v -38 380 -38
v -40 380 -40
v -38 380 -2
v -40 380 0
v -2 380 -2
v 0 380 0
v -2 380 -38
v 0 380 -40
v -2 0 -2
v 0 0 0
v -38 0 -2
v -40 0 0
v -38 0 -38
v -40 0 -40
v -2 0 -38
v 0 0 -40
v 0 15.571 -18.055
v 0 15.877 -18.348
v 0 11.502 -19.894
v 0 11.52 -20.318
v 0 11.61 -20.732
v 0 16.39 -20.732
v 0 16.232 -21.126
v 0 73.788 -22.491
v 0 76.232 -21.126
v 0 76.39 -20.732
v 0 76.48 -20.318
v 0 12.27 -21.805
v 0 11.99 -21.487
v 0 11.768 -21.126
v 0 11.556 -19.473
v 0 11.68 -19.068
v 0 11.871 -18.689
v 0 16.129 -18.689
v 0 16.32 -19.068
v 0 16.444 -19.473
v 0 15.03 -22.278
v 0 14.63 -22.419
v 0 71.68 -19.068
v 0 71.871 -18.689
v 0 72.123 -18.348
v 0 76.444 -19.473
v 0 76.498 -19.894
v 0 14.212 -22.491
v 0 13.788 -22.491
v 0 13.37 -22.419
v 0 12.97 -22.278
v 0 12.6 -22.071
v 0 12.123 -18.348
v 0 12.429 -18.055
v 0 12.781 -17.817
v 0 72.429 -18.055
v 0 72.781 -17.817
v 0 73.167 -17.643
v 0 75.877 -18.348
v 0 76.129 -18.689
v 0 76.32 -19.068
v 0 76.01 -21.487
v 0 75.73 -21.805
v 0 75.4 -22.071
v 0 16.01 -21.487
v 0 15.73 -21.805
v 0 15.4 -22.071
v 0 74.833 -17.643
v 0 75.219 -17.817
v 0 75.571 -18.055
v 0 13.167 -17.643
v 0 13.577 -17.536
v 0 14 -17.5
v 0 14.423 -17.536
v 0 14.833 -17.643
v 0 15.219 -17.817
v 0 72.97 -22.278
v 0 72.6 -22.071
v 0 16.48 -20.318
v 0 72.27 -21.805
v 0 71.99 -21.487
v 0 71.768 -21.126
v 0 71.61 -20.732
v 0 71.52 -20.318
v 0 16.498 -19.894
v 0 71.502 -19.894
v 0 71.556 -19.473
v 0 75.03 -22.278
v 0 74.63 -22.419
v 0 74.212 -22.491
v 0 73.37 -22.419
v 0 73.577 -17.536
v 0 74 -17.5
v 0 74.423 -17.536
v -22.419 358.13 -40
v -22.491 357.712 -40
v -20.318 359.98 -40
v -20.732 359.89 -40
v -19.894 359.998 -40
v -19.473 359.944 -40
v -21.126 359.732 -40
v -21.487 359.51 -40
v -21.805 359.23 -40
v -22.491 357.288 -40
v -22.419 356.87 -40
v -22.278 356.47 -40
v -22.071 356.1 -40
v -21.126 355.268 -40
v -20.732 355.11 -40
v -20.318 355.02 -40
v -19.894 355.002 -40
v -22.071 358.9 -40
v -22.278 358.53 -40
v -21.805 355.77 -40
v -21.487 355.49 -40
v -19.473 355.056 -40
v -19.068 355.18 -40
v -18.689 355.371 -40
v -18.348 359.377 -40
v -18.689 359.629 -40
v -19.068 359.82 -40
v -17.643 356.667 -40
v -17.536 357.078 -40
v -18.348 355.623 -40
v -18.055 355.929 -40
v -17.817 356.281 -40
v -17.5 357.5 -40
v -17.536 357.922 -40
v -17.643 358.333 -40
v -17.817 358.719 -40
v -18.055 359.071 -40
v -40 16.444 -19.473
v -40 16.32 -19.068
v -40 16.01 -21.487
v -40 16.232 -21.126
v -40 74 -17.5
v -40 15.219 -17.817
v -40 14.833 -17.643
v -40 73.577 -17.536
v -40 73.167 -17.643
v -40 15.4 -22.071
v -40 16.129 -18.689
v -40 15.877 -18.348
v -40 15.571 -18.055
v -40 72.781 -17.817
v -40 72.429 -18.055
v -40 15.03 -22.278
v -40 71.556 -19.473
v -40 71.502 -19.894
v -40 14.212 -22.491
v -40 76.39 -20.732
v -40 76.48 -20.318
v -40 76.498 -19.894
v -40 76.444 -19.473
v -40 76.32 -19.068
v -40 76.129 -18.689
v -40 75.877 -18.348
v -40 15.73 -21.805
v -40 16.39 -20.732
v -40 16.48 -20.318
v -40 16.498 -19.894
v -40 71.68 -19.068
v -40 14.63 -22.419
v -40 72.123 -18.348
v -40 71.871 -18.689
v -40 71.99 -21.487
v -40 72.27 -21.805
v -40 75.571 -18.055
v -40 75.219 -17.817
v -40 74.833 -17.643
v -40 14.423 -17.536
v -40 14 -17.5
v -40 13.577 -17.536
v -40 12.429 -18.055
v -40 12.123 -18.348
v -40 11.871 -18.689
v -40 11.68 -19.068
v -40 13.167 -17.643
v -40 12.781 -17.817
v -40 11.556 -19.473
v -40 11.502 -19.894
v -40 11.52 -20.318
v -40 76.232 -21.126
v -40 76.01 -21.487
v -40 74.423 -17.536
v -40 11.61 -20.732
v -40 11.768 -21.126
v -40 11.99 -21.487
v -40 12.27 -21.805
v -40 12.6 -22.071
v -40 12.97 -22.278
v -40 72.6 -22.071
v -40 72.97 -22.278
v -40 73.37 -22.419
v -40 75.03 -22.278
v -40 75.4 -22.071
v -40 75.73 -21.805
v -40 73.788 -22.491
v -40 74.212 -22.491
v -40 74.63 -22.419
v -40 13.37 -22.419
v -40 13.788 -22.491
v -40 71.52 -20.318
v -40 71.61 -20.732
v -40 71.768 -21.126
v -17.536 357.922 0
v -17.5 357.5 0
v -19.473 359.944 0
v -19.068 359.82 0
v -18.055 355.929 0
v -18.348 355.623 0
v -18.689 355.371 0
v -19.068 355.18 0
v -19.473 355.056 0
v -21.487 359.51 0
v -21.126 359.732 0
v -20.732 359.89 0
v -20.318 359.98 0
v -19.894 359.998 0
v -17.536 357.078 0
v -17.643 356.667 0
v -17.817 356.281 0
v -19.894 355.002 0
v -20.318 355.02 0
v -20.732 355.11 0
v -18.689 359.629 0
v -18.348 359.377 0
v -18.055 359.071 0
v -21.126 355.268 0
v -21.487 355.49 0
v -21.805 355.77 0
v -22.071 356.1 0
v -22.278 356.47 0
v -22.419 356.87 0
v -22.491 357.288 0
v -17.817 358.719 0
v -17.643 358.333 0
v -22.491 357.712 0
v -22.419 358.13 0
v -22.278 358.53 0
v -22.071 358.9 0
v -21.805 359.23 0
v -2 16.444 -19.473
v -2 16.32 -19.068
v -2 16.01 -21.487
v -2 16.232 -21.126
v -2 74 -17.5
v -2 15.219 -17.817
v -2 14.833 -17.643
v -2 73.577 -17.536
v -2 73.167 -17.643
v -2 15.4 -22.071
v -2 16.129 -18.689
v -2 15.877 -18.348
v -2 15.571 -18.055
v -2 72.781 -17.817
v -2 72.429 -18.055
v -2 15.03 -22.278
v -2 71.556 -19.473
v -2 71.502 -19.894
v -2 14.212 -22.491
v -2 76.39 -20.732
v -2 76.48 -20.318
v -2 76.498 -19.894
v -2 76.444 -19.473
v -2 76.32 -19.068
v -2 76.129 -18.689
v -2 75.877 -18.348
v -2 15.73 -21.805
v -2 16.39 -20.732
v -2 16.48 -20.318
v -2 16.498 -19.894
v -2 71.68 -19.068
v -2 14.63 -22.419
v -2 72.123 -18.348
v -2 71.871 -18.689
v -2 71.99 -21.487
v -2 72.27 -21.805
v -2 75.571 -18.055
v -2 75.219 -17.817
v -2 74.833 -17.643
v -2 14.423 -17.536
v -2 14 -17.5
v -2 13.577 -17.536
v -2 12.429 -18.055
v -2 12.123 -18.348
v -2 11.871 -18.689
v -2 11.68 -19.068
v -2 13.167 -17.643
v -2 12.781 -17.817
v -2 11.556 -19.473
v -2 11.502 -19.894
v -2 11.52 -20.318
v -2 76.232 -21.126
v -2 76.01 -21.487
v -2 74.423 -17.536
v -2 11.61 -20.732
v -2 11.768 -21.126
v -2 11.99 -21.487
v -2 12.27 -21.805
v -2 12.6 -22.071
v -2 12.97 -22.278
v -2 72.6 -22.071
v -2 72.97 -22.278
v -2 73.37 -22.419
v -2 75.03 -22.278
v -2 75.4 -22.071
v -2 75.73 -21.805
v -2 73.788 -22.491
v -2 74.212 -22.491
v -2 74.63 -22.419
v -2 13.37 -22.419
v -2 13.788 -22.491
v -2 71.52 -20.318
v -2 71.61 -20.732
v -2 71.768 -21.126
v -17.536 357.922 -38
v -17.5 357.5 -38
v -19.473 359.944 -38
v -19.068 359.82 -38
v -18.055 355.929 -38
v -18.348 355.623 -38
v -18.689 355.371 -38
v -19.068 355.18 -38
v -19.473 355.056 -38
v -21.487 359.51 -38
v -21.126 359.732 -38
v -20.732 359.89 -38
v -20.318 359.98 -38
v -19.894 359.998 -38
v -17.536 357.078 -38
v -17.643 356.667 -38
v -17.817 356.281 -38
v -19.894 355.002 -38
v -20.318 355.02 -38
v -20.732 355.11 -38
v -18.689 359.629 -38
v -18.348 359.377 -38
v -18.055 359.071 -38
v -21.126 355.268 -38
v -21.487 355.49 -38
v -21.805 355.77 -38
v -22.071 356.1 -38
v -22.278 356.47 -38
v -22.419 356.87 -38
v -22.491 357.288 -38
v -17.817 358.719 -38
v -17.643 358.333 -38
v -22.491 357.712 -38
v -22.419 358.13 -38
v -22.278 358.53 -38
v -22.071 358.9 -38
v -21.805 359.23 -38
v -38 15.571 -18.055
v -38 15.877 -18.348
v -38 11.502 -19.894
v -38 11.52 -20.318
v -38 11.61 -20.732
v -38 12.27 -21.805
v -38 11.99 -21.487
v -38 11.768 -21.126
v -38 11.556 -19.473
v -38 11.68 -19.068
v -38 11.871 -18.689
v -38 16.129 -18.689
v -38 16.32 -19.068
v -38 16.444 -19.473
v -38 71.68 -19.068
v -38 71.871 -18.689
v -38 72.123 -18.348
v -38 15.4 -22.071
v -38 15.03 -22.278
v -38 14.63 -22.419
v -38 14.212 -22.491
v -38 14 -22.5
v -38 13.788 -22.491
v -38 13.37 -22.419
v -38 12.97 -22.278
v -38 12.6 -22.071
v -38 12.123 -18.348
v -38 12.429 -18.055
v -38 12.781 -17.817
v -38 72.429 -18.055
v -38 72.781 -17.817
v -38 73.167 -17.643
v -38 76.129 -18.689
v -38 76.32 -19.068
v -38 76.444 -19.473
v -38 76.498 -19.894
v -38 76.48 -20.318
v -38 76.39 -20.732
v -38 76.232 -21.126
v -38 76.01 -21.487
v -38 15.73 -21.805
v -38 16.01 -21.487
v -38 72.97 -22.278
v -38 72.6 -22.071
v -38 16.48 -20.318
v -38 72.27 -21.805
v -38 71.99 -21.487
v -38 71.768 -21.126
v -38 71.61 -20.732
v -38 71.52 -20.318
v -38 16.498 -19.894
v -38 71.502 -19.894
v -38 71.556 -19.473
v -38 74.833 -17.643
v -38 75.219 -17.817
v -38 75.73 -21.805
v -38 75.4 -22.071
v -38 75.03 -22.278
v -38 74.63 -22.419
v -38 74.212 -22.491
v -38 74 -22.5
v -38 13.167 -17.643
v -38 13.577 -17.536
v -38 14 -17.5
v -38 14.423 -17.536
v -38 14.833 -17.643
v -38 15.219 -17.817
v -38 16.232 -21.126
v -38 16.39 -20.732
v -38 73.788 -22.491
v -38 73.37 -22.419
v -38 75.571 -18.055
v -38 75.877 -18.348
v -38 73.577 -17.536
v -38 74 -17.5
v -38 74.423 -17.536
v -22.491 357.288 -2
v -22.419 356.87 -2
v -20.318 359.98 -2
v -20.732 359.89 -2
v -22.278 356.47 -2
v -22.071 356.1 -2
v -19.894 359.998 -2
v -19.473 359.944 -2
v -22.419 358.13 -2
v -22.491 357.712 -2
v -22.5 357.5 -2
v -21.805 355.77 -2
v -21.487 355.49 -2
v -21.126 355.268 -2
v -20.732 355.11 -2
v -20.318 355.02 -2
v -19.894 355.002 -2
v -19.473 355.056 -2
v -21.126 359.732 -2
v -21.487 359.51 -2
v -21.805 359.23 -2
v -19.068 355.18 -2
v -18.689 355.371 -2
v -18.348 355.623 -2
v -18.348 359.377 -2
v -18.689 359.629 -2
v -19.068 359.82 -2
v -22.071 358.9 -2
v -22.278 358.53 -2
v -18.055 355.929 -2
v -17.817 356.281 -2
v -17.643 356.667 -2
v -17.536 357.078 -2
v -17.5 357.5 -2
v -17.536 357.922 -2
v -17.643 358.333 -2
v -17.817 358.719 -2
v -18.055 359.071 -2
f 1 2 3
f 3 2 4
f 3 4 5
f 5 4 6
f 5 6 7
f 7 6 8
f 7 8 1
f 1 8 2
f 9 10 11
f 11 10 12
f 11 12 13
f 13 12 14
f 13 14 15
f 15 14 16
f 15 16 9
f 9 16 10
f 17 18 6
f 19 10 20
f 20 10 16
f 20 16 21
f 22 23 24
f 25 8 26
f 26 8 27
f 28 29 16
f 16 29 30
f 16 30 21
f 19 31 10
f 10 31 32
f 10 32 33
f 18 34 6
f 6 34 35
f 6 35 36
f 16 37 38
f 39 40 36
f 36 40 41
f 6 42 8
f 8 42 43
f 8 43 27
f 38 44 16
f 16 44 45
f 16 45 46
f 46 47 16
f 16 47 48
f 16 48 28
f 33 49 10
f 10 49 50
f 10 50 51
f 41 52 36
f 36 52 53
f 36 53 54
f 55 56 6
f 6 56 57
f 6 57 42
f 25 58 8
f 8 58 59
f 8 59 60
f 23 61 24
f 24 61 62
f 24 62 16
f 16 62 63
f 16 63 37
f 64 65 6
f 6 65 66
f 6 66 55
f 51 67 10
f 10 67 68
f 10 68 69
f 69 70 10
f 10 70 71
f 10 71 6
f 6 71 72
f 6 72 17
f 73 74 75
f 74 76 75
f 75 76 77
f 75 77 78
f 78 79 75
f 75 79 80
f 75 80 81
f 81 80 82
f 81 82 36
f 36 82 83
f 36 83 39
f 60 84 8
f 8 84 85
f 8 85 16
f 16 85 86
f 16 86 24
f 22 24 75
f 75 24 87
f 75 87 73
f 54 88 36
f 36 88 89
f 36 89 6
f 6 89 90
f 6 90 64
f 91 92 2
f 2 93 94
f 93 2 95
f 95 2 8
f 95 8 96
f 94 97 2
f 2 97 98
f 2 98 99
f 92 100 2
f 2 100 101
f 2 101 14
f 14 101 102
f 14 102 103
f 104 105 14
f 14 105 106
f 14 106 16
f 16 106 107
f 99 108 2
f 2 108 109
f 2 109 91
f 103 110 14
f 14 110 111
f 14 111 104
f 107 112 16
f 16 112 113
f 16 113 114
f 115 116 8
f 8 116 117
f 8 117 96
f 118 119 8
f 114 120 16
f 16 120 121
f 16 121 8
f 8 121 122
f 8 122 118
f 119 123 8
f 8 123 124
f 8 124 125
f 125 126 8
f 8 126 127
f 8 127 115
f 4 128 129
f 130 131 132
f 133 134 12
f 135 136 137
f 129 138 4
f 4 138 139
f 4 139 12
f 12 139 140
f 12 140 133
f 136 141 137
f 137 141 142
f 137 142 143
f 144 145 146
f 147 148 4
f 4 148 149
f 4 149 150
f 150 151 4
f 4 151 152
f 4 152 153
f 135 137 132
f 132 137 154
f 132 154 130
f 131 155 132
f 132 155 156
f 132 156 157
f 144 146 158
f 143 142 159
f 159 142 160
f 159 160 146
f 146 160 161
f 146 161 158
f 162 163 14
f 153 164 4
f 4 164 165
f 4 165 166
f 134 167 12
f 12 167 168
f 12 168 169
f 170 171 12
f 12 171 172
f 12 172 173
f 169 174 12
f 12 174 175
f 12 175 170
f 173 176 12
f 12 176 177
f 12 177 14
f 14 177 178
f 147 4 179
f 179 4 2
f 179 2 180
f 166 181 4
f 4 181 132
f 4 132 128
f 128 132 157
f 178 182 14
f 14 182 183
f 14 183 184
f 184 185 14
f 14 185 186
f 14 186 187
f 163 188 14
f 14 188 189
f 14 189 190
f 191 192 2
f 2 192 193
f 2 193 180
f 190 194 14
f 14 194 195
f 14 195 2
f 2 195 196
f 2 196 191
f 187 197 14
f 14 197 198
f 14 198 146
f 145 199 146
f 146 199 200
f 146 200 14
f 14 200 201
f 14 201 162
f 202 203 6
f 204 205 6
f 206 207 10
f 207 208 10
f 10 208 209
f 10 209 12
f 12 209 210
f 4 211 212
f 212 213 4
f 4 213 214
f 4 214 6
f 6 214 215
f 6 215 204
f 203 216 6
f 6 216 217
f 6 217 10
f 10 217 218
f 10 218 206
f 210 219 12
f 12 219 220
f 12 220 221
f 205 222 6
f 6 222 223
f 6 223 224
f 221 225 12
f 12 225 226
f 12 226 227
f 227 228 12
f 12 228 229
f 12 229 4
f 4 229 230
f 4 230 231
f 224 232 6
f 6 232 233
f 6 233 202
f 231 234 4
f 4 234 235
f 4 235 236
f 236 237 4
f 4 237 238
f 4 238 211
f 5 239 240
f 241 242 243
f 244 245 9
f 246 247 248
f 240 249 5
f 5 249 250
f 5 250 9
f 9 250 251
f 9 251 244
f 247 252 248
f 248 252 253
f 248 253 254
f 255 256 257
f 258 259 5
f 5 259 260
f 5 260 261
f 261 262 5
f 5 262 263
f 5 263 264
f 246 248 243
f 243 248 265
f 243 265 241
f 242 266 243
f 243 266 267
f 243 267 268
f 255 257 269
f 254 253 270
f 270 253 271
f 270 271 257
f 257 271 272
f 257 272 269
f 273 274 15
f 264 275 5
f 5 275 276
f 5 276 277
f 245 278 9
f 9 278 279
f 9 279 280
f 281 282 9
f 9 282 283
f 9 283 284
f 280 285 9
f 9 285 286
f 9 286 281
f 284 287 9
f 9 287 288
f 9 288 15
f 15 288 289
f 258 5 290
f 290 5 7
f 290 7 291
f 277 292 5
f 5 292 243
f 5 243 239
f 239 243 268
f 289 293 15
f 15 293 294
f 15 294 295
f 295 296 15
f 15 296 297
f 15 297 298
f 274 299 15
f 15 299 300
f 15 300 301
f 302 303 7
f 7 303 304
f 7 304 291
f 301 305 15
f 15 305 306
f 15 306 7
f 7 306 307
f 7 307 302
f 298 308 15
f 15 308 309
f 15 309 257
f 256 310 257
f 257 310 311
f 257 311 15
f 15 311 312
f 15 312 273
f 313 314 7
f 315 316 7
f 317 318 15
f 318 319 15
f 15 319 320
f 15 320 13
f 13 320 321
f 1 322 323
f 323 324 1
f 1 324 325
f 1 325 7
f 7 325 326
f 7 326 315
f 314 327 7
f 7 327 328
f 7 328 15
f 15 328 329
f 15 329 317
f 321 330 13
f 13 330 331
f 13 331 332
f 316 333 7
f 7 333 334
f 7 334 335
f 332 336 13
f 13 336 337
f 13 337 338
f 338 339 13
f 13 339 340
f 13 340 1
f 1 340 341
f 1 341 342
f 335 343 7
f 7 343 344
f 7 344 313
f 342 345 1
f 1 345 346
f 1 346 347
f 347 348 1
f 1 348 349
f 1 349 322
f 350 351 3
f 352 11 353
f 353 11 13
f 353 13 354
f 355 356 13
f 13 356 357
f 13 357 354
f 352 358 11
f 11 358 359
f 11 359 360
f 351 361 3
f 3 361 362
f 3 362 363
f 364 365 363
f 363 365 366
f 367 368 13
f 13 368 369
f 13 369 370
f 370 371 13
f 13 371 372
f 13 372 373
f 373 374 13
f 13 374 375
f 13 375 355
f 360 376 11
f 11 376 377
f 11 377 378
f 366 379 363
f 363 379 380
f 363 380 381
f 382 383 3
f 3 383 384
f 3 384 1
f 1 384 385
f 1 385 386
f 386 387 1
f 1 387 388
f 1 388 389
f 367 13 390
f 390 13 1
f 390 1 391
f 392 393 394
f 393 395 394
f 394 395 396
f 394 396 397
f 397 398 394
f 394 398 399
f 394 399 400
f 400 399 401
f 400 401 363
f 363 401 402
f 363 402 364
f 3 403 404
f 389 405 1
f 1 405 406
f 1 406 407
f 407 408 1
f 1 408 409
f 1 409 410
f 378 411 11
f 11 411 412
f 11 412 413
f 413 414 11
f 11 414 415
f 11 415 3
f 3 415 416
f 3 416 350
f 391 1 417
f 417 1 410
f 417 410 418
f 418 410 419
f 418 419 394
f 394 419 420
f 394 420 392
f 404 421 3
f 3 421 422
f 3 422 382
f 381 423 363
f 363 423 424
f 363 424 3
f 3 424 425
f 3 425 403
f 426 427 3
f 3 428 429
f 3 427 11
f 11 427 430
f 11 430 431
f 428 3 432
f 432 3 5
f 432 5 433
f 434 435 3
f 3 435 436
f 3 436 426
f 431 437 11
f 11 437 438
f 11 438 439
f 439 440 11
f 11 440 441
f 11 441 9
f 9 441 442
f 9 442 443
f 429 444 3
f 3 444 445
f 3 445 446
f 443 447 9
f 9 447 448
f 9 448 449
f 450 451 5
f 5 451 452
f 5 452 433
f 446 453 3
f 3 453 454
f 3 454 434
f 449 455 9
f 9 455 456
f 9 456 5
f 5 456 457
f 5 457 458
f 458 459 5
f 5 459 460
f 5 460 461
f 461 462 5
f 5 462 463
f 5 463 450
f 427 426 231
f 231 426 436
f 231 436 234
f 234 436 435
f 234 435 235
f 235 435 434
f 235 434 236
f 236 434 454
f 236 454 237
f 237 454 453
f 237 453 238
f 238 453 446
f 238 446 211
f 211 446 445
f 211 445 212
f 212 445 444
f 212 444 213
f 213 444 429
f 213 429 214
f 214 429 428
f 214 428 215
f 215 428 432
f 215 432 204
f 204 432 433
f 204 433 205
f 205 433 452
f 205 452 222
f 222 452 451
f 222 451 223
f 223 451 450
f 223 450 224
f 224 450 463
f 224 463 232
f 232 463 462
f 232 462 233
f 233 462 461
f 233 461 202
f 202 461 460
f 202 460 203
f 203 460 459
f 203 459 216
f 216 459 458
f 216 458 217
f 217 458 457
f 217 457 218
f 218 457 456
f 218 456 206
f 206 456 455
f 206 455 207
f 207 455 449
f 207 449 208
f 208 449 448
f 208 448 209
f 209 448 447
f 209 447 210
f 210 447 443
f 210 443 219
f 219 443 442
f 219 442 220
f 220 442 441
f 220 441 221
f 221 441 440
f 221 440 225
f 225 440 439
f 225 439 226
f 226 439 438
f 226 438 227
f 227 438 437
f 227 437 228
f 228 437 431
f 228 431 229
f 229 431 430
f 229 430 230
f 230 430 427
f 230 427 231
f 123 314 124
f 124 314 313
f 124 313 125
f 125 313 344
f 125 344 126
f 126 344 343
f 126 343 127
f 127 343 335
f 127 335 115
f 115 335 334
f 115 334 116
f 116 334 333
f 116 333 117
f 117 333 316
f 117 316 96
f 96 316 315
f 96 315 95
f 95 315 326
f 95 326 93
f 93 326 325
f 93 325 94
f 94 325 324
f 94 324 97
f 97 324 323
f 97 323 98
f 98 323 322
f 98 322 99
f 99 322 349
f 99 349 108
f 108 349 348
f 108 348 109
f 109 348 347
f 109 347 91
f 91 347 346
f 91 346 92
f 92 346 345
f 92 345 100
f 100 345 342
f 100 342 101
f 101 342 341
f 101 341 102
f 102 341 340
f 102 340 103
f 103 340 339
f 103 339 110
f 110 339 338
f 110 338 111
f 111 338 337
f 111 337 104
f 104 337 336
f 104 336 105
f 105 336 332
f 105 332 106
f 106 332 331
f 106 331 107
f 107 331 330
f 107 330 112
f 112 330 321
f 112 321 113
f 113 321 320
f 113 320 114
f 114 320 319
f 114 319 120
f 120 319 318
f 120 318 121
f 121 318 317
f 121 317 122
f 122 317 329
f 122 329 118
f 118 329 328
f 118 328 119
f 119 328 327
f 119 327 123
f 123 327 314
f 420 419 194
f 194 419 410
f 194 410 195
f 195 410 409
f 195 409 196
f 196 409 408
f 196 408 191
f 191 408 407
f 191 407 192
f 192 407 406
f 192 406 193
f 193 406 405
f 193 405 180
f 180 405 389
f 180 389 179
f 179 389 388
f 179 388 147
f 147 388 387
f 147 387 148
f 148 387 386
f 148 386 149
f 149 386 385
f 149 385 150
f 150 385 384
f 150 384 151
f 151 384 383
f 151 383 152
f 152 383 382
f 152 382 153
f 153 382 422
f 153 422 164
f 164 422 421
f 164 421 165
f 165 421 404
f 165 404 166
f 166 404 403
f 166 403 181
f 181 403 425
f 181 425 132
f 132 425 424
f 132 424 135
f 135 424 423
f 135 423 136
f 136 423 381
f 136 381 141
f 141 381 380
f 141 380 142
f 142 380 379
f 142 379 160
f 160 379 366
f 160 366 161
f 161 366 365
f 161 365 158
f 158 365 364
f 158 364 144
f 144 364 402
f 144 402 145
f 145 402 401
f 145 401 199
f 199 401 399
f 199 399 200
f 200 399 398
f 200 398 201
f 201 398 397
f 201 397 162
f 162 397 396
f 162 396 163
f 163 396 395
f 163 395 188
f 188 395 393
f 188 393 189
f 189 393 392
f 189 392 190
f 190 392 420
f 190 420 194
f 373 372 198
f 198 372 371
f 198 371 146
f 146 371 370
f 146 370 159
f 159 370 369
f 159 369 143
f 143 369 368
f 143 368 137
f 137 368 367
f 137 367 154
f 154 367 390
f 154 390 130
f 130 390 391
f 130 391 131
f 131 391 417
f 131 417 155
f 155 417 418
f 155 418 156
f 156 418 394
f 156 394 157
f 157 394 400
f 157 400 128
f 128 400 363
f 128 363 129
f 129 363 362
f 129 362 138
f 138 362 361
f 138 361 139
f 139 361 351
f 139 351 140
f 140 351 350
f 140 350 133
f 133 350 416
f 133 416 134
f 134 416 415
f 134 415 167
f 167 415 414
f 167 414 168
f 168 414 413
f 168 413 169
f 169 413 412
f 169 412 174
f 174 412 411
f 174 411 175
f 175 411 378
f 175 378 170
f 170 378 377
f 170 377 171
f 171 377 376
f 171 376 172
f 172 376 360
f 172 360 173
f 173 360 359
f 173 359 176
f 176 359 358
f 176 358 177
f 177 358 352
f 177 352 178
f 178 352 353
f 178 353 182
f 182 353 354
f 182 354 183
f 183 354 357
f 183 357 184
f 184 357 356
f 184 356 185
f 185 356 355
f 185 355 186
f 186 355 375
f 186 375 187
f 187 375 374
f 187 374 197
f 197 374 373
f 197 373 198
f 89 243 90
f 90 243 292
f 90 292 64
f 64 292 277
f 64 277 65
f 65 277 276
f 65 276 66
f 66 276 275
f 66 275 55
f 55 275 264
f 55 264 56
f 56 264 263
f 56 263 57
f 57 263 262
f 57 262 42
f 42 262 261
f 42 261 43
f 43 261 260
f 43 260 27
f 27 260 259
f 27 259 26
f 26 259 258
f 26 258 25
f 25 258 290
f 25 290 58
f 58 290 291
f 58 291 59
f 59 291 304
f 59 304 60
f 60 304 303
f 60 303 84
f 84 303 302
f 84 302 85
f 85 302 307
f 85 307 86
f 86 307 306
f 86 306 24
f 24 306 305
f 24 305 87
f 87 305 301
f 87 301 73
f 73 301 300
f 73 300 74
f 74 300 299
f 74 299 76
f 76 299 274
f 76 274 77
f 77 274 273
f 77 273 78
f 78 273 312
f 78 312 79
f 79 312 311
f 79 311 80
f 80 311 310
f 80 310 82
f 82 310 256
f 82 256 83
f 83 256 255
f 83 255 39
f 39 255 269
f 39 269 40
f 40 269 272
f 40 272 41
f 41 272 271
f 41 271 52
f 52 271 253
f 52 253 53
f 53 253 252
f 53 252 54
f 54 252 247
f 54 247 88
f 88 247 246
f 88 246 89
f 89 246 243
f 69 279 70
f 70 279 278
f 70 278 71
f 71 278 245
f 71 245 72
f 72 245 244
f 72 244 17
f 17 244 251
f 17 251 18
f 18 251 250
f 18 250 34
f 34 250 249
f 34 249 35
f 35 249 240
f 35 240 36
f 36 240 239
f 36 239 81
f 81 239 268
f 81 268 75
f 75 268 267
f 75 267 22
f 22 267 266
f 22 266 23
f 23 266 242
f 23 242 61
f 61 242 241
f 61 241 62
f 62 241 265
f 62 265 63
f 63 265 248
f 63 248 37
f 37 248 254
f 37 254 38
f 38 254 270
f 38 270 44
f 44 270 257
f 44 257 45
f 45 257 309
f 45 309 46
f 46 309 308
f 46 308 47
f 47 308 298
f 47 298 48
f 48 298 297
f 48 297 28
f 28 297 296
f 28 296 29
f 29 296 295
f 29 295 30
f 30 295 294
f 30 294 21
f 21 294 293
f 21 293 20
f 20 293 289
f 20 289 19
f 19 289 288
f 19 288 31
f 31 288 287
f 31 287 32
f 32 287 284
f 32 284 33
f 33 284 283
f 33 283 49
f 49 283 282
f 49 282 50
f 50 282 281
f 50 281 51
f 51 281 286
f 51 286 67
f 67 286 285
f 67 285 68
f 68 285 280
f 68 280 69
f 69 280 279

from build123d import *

# Parameters (mm, degrees)
SKETCH1_W           = 40
SKETCH1_H           = 40
SKETCH1_W_2         = 36
SKETCH1_H_2         = 36
EXTRUDE_THIN1_DEPTH = 380
SKETCH2_R           = 2.5
CUT_EXTRUDE1_DEPTH  = 50
SKETCH3_R           = 2.5
CUT_EXTRUDE2_DEPTH  = 50


with BuildPart() as part:
    # Sketch1 → Extrude-Thin1 (new body)
    with BuildSketch(Plane(origin=(0, 0, 0), x_dir=(1, 0, 0), z_dir=(0, 1, 0))):
        with Locations((-20, 20)):
            Rectangle(SKETCH1_W, SKETCH1_H)
        with Locations((-20, 20)):
            Rectangle(SKETCH1_W_2, SKETCH1_H_2, mode=Mode.SUBTRACT)
    extrude(amount=EXTRUDE_THIN1_DEPTH)

    # Sketch2 → Cut-Extrude1 (cut)
    with BuildSketch(Plane.XY):
        with Locations((-20, 357.5)):
            Circle(SKETCH2_R)
    extrude(amount=-CUT_EXTRUDE1_DEPTH, mode=Mode.SUBTRACT)

    # Sketch3 → Cut-Extrude2 (cut)
    with BuildSketch(Plane.ZY.offset(40)):
        with Locations((-20, 14)):
            Circle(SKETCH3_R)
        with Locations((-20, 74)):
            Circle(SKETCH3_R)
    extrude(amount=-CUT_EXTRUDE2_DEPTH, mode=Mode.SUBTRACT)


solid = part.part
